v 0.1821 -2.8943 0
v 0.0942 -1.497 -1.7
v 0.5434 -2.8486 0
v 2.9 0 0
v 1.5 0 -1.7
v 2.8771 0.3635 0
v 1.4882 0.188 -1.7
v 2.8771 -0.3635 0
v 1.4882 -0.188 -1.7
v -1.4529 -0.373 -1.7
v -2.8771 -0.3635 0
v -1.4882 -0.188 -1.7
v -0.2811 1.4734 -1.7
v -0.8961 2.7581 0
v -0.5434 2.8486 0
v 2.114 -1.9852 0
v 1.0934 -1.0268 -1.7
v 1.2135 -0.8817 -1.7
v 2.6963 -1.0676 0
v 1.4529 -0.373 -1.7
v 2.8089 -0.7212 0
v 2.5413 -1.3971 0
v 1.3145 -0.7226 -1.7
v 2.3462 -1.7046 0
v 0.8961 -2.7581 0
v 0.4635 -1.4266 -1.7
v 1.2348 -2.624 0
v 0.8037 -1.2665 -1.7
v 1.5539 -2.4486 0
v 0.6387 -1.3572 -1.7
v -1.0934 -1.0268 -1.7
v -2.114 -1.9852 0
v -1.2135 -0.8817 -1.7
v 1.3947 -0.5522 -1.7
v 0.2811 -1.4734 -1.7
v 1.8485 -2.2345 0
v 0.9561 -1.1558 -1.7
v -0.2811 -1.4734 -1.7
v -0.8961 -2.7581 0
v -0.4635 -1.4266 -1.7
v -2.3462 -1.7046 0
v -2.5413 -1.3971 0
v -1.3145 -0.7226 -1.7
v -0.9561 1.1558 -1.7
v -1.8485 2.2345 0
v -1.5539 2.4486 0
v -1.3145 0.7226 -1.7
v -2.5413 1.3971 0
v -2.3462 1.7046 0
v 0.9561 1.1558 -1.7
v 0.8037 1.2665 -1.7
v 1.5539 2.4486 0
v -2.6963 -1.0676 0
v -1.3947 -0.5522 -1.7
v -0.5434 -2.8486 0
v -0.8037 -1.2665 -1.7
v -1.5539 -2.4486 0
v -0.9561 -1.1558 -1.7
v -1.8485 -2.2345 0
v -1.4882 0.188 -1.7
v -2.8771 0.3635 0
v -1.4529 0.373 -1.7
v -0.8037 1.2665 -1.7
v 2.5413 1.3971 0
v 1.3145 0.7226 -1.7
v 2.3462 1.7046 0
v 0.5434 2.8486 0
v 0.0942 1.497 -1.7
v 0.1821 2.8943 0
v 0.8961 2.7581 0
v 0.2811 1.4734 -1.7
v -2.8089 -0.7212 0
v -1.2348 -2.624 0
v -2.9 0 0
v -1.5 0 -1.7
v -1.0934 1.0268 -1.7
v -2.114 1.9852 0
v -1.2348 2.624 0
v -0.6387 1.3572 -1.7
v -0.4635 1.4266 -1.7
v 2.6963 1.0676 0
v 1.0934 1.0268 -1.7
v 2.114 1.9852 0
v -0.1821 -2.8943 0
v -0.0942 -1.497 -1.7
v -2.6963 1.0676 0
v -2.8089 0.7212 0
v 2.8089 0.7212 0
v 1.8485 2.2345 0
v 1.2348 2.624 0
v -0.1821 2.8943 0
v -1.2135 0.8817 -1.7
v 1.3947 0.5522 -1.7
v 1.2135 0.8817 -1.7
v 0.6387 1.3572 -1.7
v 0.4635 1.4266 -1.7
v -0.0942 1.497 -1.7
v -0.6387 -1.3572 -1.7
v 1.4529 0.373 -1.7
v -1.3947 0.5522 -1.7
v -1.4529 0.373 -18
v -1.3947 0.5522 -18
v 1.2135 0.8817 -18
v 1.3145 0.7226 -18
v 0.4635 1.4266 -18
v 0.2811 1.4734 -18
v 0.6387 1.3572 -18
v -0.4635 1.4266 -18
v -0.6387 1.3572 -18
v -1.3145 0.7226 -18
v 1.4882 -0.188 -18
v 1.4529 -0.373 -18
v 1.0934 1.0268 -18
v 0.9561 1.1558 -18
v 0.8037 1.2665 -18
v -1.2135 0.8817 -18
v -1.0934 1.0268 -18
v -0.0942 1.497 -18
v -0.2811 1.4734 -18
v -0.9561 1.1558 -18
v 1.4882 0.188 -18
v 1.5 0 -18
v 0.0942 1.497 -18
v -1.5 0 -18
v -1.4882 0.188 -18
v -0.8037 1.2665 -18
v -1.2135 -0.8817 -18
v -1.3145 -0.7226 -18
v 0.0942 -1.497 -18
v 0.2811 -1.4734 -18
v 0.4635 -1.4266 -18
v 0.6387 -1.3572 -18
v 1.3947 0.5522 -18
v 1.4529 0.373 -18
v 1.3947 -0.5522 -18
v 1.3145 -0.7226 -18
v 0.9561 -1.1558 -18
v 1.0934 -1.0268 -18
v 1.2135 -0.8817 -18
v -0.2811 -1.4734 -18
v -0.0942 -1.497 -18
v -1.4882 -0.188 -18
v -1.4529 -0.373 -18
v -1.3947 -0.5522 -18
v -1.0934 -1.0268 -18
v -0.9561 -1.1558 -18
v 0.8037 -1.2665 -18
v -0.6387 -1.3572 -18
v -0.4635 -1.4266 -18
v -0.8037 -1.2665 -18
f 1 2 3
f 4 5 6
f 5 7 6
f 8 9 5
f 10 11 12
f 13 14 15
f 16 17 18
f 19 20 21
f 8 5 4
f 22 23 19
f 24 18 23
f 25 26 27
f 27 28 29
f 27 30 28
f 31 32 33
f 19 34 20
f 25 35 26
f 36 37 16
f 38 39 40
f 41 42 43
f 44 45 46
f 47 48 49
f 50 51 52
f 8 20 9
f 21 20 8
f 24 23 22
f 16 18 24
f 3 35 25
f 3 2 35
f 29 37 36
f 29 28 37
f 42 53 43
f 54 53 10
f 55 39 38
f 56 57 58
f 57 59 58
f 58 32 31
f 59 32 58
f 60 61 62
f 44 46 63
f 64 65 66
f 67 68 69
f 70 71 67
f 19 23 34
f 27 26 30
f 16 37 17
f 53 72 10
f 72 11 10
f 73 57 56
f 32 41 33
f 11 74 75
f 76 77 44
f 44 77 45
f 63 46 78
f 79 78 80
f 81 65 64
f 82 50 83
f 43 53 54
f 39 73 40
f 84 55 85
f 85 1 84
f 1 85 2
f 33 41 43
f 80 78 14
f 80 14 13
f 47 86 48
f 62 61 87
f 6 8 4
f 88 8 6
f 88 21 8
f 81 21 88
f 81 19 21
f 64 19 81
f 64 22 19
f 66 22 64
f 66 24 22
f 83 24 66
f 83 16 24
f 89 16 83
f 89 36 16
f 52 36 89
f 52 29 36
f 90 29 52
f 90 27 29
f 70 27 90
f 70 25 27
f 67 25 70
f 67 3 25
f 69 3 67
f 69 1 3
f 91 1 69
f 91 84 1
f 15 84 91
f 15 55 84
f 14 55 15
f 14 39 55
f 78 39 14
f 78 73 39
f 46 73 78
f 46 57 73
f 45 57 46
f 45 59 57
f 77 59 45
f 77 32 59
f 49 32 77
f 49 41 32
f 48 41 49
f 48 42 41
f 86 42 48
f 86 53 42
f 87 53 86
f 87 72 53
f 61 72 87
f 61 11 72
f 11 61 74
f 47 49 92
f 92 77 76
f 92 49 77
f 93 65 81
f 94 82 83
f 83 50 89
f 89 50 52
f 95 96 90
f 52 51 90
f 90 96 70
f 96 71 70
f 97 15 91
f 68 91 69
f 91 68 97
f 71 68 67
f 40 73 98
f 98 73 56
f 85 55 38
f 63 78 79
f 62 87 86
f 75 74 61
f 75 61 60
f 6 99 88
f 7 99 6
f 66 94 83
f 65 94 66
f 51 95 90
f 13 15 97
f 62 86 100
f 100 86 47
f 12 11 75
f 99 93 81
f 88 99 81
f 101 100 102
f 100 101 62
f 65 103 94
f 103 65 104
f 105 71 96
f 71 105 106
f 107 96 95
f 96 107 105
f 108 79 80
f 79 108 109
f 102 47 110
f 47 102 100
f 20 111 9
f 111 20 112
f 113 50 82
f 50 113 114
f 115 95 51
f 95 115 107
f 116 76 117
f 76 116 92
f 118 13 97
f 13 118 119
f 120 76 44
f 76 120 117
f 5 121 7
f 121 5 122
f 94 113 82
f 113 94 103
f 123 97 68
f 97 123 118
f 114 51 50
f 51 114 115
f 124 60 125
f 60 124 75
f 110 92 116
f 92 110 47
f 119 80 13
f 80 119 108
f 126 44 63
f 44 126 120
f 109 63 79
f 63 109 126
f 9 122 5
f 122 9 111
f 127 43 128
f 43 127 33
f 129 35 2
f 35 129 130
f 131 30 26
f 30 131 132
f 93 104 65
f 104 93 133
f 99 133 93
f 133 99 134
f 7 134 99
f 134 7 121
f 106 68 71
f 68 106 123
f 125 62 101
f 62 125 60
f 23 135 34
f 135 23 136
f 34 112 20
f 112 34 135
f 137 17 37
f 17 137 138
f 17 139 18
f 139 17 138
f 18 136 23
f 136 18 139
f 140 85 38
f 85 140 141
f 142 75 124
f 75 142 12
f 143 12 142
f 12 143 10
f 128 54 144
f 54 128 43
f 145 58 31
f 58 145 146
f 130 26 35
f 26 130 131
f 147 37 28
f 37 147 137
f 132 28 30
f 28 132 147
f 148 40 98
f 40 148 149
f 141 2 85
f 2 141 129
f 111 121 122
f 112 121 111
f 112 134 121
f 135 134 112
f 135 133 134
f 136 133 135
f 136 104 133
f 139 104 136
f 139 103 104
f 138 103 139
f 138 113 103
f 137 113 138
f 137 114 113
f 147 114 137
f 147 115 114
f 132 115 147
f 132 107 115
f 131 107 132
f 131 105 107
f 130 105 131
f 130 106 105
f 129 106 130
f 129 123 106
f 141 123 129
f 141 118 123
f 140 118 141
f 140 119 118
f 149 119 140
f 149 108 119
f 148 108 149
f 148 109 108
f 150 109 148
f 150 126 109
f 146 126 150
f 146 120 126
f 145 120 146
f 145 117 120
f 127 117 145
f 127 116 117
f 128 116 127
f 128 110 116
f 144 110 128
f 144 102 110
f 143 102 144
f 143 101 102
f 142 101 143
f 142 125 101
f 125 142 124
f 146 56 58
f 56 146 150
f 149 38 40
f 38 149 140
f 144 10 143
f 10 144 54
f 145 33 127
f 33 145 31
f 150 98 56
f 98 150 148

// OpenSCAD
$fn = 50;


difference() {
	union() {
		translate(v = [0, 0, -1.7000000000]) {
			rotate(a = [0, 0, 0]) {
				cylinder(h = 1.7000000000, r1 = 1.5000000000, r2 = 2.9000000000);
			}
		}
		translate(v = [0, 0, -18]) {
			rotate(a = [0, 0, 0]) {
				cylinder(h = 18, r = 1.5000000000);
			}
		}
	}
	union();
}
